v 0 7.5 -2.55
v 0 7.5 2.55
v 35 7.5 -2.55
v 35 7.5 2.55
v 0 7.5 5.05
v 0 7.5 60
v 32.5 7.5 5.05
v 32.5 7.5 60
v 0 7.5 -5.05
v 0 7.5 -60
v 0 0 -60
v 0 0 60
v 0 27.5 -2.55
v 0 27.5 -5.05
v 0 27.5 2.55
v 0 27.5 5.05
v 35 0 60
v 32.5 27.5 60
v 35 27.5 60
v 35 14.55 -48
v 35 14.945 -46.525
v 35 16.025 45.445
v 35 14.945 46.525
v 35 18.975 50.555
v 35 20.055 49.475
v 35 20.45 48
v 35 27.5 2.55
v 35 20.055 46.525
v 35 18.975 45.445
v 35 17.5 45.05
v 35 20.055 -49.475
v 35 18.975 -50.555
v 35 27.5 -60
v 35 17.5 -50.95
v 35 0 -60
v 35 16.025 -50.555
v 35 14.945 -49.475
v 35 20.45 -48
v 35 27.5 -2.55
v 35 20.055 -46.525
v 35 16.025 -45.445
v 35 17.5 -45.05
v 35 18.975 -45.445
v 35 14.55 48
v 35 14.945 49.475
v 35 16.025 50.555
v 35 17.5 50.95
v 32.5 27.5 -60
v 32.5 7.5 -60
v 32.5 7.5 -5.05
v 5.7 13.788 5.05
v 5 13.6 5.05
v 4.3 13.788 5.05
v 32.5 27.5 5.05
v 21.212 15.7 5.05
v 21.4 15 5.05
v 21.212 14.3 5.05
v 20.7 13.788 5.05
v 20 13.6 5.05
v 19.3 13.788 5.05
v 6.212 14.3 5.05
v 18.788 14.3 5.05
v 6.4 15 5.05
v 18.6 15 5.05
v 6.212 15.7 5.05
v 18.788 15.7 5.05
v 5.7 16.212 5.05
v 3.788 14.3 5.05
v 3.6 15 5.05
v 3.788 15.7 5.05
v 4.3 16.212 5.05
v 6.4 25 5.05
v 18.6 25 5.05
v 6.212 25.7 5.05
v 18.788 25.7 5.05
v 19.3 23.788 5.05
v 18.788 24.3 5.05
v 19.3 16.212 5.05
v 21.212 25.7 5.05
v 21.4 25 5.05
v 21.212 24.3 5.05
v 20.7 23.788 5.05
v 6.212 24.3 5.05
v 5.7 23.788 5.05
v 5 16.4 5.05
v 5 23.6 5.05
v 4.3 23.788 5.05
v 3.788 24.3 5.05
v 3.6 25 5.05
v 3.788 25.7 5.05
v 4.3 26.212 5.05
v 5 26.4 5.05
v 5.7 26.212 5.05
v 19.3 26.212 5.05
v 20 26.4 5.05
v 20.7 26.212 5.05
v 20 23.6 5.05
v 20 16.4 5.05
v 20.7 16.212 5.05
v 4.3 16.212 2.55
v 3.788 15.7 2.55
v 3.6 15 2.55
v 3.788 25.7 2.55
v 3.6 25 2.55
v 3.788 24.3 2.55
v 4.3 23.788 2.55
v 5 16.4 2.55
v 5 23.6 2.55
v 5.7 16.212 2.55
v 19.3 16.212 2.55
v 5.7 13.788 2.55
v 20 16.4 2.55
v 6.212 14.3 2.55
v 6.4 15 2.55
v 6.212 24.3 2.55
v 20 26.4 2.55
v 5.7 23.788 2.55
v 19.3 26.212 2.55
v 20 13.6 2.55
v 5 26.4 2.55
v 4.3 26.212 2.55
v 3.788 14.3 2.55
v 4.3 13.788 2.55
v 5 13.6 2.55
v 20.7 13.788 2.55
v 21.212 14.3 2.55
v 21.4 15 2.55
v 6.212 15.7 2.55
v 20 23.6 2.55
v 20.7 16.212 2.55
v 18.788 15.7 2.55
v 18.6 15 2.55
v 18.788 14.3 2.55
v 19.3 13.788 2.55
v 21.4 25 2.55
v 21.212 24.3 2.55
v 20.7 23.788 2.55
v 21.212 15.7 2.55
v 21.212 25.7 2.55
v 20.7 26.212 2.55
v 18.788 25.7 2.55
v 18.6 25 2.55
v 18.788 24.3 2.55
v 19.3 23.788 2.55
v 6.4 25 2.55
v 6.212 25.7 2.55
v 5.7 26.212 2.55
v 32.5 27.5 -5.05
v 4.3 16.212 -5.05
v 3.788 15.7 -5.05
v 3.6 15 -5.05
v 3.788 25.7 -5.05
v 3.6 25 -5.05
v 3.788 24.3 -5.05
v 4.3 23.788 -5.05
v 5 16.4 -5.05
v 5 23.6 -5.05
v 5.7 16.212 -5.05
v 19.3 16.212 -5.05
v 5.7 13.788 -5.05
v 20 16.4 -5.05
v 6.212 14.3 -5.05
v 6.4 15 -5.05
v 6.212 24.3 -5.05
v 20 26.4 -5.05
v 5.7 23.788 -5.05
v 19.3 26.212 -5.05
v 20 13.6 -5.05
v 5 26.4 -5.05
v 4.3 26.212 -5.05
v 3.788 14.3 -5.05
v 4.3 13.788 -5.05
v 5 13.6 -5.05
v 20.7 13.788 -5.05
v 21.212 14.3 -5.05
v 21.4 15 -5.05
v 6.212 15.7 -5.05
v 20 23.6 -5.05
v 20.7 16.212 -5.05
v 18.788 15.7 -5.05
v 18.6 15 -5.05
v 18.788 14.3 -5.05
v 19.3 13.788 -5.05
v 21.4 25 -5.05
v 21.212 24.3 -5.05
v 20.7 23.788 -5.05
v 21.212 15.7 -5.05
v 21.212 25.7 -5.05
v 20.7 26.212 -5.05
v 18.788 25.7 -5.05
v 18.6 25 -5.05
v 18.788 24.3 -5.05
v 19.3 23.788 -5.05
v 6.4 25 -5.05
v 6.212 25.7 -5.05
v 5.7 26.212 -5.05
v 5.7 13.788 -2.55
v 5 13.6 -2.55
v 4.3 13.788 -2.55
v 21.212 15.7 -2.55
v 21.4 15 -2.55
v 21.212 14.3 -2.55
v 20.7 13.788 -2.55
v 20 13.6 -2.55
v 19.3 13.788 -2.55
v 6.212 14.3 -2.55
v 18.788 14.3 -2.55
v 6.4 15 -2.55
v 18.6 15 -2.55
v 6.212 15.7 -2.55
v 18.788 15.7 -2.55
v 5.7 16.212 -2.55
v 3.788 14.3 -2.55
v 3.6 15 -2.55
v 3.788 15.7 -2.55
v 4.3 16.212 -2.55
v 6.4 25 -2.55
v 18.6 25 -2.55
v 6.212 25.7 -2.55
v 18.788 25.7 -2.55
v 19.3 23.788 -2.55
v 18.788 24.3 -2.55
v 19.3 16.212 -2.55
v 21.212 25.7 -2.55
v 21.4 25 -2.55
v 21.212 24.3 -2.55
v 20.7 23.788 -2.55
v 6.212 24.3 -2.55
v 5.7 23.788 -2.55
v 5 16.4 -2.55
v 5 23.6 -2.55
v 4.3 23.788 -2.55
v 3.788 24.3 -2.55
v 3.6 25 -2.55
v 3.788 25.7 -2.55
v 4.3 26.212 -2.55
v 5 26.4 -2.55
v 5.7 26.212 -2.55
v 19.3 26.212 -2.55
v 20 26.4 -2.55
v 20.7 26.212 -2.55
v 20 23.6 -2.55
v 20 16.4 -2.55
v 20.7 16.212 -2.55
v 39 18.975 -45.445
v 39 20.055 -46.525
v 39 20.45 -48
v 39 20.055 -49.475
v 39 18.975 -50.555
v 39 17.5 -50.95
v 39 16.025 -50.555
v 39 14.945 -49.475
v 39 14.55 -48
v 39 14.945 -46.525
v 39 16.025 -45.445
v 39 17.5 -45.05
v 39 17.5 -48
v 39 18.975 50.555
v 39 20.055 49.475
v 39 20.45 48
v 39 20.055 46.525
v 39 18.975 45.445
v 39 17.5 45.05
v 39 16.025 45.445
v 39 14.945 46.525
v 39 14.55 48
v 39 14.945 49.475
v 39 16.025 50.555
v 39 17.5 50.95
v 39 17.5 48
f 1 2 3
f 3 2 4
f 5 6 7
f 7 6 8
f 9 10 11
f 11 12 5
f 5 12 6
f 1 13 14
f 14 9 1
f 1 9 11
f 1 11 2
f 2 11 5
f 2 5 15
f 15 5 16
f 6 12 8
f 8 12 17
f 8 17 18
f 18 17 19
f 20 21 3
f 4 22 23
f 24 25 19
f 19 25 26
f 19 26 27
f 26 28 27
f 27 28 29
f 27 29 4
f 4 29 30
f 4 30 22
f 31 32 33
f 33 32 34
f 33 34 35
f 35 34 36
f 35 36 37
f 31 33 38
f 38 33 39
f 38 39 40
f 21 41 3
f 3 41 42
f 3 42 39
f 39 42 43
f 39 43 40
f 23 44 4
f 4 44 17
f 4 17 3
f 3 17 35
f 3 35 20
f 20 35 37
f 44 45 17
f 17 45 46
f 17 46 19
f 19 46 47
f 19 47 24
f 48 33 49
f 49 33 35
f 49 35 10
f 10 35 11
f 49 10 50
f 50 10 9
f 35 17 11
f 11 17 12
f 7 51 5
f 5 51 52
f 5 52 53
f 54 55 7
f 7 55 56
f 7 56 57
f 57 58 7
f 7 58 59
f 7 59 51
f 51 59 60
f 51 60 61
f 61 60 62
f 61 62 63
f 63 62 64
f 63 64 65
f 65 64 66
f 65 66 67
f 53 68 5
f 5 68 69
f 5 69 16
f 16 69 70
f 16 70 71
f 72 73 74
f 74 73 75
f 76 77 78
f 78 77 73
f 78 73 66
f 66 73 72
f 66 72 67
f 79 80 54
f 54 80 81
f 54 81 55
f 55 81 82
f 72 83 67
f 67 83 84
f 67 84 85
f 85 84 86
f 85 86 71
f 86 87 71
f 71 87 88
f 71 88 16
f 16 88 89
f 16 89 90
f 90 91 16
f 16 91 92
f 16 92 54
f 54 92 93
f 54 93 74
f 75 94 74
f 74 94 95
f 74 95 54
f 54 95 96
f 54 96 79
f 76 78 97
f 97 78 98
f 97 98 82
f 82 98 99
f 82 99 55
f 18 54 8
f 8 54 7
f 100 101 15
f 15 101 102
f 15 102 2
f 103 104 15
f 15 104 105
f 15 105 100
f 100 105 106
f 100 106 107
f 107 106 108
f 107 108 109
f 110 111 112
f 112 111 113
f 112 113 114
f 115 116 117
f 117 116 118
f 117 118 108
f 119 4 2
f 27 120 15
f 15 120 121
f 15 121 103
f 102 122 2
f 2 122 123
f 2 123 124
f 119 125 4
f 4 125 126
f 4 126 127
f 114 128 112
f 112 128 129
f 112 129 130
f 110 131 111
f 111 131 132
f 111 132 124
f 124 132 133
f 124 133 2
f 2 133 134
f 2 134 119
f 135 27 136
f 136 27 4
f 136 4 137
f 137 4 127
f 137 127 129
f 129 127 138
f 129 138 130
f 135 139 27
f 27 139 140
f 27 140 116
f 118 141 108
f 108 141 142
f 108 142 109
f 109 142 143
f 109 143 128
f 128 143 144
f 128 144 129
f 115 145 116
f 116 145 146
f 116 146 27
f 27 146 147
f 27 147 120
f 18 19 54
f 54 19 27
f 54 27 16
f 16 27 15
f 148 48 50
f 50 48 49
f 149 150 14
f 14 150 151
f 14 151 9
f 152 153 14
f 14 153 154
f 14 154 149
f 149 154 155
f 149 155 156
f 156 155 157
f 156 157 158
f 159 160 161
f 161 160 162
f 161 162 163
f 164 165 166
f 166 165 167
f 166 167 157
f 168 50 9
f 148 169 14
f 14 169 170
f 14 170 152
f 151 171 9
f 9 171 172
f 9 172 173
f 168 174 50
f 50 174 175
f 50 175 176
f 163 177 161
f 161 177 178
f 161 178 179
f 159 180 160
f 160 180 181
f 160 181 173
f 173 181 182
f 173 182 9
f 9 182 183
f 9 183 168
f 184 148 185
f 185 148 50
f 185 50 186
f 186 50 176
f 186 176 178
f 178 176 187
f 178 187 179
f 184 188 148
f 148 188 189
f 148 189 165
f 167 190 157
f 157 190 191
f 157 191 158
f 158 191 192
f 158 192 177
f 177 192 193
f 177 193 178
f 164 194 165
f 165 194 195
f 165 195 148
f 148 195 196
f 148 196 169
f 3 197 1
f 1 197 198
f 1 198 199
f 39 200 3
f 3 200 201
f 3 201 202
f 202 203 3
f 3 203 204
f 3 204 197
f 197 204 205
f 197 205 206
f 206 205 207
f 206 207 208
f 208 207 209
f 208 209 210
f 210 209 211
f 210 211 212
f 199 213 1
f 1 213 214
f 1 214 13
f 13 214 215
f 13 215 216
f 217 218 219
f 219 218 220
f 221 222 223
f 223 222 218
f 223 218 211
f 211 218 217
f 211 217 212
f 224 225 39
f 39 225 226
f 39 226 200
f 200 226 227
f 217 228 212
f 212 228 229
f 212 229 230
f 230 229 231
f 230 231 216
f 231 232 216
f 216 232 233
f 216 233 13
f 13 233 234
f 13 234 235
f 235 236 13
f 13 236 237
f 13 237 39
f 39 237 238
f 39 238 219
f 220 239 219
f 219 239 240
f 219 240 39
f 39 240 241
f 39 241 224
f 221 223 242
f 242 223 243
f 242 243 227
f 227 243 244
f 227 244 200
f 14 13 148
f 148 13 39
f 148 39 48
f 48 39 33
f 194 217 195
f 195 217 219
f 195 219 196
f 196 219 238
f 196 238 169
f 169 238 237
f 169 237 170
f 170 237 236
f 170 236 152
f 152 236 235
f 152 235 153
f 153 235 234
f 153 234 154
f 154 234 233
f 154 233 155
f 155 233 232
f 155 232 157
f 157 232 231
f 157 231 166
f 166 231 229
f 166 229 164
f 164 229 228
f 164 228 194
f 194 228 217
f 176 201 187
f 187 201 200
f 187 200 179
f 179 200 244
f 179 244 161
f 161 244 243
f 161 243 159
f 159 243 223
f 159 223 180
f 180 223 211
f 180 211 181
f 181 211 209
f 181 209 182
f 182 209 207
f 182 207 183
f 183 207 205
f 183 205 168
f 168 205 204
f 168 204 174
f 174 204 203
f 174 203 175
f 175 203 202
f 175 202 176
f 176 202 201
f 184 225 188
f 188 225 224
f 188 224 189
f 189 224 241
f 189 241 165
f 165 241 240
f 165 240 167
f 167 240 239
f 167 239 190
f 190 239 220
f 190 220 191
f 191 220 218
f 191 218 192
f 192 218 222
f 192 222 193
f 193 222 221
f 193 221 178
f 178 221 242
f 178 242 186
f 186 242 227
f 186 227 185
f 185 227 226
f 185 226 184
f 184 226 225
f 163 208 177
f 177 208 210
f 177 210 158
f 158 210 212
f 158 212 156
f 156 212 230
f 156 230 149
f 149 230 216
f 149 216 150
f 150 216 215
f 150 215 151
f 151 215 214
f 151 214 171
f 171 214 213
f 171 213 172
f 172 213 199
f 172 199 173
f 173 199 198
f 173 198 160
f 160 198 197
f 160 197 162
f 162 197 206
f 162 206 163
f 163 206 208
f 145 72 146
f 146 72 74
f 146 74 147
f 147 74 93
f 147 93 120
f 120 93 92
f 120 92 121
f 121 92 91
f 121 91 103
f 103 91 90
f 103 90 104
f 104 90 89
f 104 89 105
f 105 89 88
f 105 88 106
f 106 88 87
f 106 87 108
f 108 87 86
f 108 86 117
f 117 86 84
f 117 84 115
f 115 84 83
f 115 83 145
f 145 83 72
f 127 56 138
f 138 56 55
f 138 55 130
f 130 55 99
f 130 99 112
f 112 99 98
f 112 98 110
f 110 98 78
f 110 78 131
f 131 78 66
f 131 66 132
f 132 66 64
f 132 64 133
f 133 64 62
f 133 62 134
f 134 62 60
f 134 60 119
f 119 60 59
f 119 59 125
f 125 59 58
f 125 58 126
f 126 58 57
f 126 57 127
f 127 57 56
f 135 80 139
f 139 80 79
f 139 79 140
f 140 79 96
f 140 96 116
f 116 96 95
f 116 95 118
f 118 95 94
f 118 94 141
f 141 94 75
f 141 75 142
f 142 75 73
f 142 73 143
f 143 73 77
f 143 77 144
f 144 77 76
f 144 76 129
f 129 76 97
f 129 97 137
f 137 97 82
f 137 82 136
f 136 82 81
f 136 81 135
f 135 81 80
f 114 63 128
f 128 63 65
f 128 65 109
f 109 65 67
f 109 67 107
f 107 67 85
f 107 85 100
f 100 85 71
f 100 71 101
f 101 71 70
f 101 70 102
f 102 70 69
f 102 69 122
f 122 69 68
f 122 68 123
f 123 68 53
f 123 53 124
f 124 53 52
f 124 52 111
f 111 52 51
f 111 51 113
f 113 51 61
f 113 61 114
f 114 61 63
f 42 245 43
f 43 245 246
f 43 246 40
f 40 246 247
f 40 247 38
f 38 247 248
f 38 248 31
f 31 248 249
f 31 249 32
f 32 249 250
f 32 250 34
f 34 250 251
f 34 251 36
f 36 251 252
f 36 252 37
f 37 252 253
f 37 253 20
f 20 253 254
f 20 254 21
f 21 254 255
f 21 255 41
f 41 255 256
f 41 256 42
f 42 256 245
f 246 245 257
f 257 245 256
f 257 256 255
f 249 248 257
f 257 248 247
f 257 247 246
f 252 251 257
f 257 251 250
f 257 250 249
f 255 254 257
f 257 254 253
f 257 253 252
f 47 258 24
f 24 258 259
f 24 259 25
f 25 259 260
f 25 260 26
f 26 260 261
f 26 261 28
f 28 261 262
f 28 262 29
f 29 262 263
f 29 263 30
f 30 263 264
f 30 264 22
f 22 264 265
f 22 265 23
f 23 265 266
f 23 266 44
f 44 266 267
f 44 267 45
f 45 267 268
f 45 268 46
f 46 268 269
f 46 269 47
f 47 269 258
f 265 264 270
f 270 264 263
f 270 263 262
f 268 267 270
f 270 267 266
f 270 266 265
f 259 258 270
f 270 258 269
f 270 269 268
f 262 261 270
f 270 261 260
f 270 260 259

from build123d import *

# Parameters (mm, degrees)
SKETCH1_W           = 35
SKETCH1_H           = 120
BOSS_EXTRUDE1_DEPTH = 7.5
SKETCH2_W           = 32.5
SKETCH2_H           = 2.5
BOSS_EXTRUDE2_DEPTH = 20
SKETCH3_R           = 1.4
CUT_EXTRUDE1_DEPTH  = 12
SKETCH4_R           = 2.95
BOSS_EXTRUDE3_DEPTH = 4


with BuildPart() as part:
    # Sketch1 → Boss-Extrude1 (new body)
    with BuildSketch(Plane(origin=(0, 0, 0), x_dir=(1, 0, 0), z_dir=(0, 1, 0))):
        with Locations((17.5, 0)):
            Rectangle(SKETCH1_W, SKETCH1_H)
    extrude(amount=BOSS_EXTRUDE1_DEPTH)

    # Sketch2 → Boss-Extrude2 (add)
    with BuildSketch(Plane(origin=(0, 7.5, 0), x_dir=(1, 0, 0), z_dir=(0, 1, 0))):
        Polygon((35, 2.55), (35, 60), (32.5, 60), (32.5, 5.05), (32.5, 2.55), align=None)
        with Locations((16.25, 3.8)):
            Rectangle(SKETCH2_W, SKETCH2_H)
        with Locations((16.25, -3.8)):
            Rectangle(SKETCH2_W, SKETCH2_H)
        Polygon((35, -60), (35, -2.55), (32.5, -2.55), (32.5, -5.05), (32.5, -60), align=None)
    extrude(amount=BOSS_EXTRUDE2_DEPTH)

    # Sketch3 → Cut-Extrude1 (cut)
    with BuildSketch(Plane.XY.offset(5.05)):
        with Locations((5, 25)):
            Circle(SKETCH3_R)
        with Locations((5, 15)):
            Circle(SKETCH3_R)
        with Locations((20, 25)):
            Circle(SKETCH3_R)
        with Locations((20, 15)):
            Circle(SKETCH3_R)
    extrude(amount=-CUT_EXTRUDE1_DEPTH, mode=Mode.SUBTRACT)

    # Sketch4 → Boss-Extrude3 (add)
    with BuildSketch(Plane(origin=(35, 0, 0), x_dir=(0, 0, -1), z_dir=(1, 0, 0))):
        with Locations(Location((-48, 17.5, 0), (0, 0, 180))):
            Circle(SKETCH4_R)
        with Locations(Location((48, 17.5, 0), (0, 0, 180))):
            Circle(SKETCH4_R)
    extrude(amount=BOSS_EXTRUDE3_DEPTH)


solid = part.part
